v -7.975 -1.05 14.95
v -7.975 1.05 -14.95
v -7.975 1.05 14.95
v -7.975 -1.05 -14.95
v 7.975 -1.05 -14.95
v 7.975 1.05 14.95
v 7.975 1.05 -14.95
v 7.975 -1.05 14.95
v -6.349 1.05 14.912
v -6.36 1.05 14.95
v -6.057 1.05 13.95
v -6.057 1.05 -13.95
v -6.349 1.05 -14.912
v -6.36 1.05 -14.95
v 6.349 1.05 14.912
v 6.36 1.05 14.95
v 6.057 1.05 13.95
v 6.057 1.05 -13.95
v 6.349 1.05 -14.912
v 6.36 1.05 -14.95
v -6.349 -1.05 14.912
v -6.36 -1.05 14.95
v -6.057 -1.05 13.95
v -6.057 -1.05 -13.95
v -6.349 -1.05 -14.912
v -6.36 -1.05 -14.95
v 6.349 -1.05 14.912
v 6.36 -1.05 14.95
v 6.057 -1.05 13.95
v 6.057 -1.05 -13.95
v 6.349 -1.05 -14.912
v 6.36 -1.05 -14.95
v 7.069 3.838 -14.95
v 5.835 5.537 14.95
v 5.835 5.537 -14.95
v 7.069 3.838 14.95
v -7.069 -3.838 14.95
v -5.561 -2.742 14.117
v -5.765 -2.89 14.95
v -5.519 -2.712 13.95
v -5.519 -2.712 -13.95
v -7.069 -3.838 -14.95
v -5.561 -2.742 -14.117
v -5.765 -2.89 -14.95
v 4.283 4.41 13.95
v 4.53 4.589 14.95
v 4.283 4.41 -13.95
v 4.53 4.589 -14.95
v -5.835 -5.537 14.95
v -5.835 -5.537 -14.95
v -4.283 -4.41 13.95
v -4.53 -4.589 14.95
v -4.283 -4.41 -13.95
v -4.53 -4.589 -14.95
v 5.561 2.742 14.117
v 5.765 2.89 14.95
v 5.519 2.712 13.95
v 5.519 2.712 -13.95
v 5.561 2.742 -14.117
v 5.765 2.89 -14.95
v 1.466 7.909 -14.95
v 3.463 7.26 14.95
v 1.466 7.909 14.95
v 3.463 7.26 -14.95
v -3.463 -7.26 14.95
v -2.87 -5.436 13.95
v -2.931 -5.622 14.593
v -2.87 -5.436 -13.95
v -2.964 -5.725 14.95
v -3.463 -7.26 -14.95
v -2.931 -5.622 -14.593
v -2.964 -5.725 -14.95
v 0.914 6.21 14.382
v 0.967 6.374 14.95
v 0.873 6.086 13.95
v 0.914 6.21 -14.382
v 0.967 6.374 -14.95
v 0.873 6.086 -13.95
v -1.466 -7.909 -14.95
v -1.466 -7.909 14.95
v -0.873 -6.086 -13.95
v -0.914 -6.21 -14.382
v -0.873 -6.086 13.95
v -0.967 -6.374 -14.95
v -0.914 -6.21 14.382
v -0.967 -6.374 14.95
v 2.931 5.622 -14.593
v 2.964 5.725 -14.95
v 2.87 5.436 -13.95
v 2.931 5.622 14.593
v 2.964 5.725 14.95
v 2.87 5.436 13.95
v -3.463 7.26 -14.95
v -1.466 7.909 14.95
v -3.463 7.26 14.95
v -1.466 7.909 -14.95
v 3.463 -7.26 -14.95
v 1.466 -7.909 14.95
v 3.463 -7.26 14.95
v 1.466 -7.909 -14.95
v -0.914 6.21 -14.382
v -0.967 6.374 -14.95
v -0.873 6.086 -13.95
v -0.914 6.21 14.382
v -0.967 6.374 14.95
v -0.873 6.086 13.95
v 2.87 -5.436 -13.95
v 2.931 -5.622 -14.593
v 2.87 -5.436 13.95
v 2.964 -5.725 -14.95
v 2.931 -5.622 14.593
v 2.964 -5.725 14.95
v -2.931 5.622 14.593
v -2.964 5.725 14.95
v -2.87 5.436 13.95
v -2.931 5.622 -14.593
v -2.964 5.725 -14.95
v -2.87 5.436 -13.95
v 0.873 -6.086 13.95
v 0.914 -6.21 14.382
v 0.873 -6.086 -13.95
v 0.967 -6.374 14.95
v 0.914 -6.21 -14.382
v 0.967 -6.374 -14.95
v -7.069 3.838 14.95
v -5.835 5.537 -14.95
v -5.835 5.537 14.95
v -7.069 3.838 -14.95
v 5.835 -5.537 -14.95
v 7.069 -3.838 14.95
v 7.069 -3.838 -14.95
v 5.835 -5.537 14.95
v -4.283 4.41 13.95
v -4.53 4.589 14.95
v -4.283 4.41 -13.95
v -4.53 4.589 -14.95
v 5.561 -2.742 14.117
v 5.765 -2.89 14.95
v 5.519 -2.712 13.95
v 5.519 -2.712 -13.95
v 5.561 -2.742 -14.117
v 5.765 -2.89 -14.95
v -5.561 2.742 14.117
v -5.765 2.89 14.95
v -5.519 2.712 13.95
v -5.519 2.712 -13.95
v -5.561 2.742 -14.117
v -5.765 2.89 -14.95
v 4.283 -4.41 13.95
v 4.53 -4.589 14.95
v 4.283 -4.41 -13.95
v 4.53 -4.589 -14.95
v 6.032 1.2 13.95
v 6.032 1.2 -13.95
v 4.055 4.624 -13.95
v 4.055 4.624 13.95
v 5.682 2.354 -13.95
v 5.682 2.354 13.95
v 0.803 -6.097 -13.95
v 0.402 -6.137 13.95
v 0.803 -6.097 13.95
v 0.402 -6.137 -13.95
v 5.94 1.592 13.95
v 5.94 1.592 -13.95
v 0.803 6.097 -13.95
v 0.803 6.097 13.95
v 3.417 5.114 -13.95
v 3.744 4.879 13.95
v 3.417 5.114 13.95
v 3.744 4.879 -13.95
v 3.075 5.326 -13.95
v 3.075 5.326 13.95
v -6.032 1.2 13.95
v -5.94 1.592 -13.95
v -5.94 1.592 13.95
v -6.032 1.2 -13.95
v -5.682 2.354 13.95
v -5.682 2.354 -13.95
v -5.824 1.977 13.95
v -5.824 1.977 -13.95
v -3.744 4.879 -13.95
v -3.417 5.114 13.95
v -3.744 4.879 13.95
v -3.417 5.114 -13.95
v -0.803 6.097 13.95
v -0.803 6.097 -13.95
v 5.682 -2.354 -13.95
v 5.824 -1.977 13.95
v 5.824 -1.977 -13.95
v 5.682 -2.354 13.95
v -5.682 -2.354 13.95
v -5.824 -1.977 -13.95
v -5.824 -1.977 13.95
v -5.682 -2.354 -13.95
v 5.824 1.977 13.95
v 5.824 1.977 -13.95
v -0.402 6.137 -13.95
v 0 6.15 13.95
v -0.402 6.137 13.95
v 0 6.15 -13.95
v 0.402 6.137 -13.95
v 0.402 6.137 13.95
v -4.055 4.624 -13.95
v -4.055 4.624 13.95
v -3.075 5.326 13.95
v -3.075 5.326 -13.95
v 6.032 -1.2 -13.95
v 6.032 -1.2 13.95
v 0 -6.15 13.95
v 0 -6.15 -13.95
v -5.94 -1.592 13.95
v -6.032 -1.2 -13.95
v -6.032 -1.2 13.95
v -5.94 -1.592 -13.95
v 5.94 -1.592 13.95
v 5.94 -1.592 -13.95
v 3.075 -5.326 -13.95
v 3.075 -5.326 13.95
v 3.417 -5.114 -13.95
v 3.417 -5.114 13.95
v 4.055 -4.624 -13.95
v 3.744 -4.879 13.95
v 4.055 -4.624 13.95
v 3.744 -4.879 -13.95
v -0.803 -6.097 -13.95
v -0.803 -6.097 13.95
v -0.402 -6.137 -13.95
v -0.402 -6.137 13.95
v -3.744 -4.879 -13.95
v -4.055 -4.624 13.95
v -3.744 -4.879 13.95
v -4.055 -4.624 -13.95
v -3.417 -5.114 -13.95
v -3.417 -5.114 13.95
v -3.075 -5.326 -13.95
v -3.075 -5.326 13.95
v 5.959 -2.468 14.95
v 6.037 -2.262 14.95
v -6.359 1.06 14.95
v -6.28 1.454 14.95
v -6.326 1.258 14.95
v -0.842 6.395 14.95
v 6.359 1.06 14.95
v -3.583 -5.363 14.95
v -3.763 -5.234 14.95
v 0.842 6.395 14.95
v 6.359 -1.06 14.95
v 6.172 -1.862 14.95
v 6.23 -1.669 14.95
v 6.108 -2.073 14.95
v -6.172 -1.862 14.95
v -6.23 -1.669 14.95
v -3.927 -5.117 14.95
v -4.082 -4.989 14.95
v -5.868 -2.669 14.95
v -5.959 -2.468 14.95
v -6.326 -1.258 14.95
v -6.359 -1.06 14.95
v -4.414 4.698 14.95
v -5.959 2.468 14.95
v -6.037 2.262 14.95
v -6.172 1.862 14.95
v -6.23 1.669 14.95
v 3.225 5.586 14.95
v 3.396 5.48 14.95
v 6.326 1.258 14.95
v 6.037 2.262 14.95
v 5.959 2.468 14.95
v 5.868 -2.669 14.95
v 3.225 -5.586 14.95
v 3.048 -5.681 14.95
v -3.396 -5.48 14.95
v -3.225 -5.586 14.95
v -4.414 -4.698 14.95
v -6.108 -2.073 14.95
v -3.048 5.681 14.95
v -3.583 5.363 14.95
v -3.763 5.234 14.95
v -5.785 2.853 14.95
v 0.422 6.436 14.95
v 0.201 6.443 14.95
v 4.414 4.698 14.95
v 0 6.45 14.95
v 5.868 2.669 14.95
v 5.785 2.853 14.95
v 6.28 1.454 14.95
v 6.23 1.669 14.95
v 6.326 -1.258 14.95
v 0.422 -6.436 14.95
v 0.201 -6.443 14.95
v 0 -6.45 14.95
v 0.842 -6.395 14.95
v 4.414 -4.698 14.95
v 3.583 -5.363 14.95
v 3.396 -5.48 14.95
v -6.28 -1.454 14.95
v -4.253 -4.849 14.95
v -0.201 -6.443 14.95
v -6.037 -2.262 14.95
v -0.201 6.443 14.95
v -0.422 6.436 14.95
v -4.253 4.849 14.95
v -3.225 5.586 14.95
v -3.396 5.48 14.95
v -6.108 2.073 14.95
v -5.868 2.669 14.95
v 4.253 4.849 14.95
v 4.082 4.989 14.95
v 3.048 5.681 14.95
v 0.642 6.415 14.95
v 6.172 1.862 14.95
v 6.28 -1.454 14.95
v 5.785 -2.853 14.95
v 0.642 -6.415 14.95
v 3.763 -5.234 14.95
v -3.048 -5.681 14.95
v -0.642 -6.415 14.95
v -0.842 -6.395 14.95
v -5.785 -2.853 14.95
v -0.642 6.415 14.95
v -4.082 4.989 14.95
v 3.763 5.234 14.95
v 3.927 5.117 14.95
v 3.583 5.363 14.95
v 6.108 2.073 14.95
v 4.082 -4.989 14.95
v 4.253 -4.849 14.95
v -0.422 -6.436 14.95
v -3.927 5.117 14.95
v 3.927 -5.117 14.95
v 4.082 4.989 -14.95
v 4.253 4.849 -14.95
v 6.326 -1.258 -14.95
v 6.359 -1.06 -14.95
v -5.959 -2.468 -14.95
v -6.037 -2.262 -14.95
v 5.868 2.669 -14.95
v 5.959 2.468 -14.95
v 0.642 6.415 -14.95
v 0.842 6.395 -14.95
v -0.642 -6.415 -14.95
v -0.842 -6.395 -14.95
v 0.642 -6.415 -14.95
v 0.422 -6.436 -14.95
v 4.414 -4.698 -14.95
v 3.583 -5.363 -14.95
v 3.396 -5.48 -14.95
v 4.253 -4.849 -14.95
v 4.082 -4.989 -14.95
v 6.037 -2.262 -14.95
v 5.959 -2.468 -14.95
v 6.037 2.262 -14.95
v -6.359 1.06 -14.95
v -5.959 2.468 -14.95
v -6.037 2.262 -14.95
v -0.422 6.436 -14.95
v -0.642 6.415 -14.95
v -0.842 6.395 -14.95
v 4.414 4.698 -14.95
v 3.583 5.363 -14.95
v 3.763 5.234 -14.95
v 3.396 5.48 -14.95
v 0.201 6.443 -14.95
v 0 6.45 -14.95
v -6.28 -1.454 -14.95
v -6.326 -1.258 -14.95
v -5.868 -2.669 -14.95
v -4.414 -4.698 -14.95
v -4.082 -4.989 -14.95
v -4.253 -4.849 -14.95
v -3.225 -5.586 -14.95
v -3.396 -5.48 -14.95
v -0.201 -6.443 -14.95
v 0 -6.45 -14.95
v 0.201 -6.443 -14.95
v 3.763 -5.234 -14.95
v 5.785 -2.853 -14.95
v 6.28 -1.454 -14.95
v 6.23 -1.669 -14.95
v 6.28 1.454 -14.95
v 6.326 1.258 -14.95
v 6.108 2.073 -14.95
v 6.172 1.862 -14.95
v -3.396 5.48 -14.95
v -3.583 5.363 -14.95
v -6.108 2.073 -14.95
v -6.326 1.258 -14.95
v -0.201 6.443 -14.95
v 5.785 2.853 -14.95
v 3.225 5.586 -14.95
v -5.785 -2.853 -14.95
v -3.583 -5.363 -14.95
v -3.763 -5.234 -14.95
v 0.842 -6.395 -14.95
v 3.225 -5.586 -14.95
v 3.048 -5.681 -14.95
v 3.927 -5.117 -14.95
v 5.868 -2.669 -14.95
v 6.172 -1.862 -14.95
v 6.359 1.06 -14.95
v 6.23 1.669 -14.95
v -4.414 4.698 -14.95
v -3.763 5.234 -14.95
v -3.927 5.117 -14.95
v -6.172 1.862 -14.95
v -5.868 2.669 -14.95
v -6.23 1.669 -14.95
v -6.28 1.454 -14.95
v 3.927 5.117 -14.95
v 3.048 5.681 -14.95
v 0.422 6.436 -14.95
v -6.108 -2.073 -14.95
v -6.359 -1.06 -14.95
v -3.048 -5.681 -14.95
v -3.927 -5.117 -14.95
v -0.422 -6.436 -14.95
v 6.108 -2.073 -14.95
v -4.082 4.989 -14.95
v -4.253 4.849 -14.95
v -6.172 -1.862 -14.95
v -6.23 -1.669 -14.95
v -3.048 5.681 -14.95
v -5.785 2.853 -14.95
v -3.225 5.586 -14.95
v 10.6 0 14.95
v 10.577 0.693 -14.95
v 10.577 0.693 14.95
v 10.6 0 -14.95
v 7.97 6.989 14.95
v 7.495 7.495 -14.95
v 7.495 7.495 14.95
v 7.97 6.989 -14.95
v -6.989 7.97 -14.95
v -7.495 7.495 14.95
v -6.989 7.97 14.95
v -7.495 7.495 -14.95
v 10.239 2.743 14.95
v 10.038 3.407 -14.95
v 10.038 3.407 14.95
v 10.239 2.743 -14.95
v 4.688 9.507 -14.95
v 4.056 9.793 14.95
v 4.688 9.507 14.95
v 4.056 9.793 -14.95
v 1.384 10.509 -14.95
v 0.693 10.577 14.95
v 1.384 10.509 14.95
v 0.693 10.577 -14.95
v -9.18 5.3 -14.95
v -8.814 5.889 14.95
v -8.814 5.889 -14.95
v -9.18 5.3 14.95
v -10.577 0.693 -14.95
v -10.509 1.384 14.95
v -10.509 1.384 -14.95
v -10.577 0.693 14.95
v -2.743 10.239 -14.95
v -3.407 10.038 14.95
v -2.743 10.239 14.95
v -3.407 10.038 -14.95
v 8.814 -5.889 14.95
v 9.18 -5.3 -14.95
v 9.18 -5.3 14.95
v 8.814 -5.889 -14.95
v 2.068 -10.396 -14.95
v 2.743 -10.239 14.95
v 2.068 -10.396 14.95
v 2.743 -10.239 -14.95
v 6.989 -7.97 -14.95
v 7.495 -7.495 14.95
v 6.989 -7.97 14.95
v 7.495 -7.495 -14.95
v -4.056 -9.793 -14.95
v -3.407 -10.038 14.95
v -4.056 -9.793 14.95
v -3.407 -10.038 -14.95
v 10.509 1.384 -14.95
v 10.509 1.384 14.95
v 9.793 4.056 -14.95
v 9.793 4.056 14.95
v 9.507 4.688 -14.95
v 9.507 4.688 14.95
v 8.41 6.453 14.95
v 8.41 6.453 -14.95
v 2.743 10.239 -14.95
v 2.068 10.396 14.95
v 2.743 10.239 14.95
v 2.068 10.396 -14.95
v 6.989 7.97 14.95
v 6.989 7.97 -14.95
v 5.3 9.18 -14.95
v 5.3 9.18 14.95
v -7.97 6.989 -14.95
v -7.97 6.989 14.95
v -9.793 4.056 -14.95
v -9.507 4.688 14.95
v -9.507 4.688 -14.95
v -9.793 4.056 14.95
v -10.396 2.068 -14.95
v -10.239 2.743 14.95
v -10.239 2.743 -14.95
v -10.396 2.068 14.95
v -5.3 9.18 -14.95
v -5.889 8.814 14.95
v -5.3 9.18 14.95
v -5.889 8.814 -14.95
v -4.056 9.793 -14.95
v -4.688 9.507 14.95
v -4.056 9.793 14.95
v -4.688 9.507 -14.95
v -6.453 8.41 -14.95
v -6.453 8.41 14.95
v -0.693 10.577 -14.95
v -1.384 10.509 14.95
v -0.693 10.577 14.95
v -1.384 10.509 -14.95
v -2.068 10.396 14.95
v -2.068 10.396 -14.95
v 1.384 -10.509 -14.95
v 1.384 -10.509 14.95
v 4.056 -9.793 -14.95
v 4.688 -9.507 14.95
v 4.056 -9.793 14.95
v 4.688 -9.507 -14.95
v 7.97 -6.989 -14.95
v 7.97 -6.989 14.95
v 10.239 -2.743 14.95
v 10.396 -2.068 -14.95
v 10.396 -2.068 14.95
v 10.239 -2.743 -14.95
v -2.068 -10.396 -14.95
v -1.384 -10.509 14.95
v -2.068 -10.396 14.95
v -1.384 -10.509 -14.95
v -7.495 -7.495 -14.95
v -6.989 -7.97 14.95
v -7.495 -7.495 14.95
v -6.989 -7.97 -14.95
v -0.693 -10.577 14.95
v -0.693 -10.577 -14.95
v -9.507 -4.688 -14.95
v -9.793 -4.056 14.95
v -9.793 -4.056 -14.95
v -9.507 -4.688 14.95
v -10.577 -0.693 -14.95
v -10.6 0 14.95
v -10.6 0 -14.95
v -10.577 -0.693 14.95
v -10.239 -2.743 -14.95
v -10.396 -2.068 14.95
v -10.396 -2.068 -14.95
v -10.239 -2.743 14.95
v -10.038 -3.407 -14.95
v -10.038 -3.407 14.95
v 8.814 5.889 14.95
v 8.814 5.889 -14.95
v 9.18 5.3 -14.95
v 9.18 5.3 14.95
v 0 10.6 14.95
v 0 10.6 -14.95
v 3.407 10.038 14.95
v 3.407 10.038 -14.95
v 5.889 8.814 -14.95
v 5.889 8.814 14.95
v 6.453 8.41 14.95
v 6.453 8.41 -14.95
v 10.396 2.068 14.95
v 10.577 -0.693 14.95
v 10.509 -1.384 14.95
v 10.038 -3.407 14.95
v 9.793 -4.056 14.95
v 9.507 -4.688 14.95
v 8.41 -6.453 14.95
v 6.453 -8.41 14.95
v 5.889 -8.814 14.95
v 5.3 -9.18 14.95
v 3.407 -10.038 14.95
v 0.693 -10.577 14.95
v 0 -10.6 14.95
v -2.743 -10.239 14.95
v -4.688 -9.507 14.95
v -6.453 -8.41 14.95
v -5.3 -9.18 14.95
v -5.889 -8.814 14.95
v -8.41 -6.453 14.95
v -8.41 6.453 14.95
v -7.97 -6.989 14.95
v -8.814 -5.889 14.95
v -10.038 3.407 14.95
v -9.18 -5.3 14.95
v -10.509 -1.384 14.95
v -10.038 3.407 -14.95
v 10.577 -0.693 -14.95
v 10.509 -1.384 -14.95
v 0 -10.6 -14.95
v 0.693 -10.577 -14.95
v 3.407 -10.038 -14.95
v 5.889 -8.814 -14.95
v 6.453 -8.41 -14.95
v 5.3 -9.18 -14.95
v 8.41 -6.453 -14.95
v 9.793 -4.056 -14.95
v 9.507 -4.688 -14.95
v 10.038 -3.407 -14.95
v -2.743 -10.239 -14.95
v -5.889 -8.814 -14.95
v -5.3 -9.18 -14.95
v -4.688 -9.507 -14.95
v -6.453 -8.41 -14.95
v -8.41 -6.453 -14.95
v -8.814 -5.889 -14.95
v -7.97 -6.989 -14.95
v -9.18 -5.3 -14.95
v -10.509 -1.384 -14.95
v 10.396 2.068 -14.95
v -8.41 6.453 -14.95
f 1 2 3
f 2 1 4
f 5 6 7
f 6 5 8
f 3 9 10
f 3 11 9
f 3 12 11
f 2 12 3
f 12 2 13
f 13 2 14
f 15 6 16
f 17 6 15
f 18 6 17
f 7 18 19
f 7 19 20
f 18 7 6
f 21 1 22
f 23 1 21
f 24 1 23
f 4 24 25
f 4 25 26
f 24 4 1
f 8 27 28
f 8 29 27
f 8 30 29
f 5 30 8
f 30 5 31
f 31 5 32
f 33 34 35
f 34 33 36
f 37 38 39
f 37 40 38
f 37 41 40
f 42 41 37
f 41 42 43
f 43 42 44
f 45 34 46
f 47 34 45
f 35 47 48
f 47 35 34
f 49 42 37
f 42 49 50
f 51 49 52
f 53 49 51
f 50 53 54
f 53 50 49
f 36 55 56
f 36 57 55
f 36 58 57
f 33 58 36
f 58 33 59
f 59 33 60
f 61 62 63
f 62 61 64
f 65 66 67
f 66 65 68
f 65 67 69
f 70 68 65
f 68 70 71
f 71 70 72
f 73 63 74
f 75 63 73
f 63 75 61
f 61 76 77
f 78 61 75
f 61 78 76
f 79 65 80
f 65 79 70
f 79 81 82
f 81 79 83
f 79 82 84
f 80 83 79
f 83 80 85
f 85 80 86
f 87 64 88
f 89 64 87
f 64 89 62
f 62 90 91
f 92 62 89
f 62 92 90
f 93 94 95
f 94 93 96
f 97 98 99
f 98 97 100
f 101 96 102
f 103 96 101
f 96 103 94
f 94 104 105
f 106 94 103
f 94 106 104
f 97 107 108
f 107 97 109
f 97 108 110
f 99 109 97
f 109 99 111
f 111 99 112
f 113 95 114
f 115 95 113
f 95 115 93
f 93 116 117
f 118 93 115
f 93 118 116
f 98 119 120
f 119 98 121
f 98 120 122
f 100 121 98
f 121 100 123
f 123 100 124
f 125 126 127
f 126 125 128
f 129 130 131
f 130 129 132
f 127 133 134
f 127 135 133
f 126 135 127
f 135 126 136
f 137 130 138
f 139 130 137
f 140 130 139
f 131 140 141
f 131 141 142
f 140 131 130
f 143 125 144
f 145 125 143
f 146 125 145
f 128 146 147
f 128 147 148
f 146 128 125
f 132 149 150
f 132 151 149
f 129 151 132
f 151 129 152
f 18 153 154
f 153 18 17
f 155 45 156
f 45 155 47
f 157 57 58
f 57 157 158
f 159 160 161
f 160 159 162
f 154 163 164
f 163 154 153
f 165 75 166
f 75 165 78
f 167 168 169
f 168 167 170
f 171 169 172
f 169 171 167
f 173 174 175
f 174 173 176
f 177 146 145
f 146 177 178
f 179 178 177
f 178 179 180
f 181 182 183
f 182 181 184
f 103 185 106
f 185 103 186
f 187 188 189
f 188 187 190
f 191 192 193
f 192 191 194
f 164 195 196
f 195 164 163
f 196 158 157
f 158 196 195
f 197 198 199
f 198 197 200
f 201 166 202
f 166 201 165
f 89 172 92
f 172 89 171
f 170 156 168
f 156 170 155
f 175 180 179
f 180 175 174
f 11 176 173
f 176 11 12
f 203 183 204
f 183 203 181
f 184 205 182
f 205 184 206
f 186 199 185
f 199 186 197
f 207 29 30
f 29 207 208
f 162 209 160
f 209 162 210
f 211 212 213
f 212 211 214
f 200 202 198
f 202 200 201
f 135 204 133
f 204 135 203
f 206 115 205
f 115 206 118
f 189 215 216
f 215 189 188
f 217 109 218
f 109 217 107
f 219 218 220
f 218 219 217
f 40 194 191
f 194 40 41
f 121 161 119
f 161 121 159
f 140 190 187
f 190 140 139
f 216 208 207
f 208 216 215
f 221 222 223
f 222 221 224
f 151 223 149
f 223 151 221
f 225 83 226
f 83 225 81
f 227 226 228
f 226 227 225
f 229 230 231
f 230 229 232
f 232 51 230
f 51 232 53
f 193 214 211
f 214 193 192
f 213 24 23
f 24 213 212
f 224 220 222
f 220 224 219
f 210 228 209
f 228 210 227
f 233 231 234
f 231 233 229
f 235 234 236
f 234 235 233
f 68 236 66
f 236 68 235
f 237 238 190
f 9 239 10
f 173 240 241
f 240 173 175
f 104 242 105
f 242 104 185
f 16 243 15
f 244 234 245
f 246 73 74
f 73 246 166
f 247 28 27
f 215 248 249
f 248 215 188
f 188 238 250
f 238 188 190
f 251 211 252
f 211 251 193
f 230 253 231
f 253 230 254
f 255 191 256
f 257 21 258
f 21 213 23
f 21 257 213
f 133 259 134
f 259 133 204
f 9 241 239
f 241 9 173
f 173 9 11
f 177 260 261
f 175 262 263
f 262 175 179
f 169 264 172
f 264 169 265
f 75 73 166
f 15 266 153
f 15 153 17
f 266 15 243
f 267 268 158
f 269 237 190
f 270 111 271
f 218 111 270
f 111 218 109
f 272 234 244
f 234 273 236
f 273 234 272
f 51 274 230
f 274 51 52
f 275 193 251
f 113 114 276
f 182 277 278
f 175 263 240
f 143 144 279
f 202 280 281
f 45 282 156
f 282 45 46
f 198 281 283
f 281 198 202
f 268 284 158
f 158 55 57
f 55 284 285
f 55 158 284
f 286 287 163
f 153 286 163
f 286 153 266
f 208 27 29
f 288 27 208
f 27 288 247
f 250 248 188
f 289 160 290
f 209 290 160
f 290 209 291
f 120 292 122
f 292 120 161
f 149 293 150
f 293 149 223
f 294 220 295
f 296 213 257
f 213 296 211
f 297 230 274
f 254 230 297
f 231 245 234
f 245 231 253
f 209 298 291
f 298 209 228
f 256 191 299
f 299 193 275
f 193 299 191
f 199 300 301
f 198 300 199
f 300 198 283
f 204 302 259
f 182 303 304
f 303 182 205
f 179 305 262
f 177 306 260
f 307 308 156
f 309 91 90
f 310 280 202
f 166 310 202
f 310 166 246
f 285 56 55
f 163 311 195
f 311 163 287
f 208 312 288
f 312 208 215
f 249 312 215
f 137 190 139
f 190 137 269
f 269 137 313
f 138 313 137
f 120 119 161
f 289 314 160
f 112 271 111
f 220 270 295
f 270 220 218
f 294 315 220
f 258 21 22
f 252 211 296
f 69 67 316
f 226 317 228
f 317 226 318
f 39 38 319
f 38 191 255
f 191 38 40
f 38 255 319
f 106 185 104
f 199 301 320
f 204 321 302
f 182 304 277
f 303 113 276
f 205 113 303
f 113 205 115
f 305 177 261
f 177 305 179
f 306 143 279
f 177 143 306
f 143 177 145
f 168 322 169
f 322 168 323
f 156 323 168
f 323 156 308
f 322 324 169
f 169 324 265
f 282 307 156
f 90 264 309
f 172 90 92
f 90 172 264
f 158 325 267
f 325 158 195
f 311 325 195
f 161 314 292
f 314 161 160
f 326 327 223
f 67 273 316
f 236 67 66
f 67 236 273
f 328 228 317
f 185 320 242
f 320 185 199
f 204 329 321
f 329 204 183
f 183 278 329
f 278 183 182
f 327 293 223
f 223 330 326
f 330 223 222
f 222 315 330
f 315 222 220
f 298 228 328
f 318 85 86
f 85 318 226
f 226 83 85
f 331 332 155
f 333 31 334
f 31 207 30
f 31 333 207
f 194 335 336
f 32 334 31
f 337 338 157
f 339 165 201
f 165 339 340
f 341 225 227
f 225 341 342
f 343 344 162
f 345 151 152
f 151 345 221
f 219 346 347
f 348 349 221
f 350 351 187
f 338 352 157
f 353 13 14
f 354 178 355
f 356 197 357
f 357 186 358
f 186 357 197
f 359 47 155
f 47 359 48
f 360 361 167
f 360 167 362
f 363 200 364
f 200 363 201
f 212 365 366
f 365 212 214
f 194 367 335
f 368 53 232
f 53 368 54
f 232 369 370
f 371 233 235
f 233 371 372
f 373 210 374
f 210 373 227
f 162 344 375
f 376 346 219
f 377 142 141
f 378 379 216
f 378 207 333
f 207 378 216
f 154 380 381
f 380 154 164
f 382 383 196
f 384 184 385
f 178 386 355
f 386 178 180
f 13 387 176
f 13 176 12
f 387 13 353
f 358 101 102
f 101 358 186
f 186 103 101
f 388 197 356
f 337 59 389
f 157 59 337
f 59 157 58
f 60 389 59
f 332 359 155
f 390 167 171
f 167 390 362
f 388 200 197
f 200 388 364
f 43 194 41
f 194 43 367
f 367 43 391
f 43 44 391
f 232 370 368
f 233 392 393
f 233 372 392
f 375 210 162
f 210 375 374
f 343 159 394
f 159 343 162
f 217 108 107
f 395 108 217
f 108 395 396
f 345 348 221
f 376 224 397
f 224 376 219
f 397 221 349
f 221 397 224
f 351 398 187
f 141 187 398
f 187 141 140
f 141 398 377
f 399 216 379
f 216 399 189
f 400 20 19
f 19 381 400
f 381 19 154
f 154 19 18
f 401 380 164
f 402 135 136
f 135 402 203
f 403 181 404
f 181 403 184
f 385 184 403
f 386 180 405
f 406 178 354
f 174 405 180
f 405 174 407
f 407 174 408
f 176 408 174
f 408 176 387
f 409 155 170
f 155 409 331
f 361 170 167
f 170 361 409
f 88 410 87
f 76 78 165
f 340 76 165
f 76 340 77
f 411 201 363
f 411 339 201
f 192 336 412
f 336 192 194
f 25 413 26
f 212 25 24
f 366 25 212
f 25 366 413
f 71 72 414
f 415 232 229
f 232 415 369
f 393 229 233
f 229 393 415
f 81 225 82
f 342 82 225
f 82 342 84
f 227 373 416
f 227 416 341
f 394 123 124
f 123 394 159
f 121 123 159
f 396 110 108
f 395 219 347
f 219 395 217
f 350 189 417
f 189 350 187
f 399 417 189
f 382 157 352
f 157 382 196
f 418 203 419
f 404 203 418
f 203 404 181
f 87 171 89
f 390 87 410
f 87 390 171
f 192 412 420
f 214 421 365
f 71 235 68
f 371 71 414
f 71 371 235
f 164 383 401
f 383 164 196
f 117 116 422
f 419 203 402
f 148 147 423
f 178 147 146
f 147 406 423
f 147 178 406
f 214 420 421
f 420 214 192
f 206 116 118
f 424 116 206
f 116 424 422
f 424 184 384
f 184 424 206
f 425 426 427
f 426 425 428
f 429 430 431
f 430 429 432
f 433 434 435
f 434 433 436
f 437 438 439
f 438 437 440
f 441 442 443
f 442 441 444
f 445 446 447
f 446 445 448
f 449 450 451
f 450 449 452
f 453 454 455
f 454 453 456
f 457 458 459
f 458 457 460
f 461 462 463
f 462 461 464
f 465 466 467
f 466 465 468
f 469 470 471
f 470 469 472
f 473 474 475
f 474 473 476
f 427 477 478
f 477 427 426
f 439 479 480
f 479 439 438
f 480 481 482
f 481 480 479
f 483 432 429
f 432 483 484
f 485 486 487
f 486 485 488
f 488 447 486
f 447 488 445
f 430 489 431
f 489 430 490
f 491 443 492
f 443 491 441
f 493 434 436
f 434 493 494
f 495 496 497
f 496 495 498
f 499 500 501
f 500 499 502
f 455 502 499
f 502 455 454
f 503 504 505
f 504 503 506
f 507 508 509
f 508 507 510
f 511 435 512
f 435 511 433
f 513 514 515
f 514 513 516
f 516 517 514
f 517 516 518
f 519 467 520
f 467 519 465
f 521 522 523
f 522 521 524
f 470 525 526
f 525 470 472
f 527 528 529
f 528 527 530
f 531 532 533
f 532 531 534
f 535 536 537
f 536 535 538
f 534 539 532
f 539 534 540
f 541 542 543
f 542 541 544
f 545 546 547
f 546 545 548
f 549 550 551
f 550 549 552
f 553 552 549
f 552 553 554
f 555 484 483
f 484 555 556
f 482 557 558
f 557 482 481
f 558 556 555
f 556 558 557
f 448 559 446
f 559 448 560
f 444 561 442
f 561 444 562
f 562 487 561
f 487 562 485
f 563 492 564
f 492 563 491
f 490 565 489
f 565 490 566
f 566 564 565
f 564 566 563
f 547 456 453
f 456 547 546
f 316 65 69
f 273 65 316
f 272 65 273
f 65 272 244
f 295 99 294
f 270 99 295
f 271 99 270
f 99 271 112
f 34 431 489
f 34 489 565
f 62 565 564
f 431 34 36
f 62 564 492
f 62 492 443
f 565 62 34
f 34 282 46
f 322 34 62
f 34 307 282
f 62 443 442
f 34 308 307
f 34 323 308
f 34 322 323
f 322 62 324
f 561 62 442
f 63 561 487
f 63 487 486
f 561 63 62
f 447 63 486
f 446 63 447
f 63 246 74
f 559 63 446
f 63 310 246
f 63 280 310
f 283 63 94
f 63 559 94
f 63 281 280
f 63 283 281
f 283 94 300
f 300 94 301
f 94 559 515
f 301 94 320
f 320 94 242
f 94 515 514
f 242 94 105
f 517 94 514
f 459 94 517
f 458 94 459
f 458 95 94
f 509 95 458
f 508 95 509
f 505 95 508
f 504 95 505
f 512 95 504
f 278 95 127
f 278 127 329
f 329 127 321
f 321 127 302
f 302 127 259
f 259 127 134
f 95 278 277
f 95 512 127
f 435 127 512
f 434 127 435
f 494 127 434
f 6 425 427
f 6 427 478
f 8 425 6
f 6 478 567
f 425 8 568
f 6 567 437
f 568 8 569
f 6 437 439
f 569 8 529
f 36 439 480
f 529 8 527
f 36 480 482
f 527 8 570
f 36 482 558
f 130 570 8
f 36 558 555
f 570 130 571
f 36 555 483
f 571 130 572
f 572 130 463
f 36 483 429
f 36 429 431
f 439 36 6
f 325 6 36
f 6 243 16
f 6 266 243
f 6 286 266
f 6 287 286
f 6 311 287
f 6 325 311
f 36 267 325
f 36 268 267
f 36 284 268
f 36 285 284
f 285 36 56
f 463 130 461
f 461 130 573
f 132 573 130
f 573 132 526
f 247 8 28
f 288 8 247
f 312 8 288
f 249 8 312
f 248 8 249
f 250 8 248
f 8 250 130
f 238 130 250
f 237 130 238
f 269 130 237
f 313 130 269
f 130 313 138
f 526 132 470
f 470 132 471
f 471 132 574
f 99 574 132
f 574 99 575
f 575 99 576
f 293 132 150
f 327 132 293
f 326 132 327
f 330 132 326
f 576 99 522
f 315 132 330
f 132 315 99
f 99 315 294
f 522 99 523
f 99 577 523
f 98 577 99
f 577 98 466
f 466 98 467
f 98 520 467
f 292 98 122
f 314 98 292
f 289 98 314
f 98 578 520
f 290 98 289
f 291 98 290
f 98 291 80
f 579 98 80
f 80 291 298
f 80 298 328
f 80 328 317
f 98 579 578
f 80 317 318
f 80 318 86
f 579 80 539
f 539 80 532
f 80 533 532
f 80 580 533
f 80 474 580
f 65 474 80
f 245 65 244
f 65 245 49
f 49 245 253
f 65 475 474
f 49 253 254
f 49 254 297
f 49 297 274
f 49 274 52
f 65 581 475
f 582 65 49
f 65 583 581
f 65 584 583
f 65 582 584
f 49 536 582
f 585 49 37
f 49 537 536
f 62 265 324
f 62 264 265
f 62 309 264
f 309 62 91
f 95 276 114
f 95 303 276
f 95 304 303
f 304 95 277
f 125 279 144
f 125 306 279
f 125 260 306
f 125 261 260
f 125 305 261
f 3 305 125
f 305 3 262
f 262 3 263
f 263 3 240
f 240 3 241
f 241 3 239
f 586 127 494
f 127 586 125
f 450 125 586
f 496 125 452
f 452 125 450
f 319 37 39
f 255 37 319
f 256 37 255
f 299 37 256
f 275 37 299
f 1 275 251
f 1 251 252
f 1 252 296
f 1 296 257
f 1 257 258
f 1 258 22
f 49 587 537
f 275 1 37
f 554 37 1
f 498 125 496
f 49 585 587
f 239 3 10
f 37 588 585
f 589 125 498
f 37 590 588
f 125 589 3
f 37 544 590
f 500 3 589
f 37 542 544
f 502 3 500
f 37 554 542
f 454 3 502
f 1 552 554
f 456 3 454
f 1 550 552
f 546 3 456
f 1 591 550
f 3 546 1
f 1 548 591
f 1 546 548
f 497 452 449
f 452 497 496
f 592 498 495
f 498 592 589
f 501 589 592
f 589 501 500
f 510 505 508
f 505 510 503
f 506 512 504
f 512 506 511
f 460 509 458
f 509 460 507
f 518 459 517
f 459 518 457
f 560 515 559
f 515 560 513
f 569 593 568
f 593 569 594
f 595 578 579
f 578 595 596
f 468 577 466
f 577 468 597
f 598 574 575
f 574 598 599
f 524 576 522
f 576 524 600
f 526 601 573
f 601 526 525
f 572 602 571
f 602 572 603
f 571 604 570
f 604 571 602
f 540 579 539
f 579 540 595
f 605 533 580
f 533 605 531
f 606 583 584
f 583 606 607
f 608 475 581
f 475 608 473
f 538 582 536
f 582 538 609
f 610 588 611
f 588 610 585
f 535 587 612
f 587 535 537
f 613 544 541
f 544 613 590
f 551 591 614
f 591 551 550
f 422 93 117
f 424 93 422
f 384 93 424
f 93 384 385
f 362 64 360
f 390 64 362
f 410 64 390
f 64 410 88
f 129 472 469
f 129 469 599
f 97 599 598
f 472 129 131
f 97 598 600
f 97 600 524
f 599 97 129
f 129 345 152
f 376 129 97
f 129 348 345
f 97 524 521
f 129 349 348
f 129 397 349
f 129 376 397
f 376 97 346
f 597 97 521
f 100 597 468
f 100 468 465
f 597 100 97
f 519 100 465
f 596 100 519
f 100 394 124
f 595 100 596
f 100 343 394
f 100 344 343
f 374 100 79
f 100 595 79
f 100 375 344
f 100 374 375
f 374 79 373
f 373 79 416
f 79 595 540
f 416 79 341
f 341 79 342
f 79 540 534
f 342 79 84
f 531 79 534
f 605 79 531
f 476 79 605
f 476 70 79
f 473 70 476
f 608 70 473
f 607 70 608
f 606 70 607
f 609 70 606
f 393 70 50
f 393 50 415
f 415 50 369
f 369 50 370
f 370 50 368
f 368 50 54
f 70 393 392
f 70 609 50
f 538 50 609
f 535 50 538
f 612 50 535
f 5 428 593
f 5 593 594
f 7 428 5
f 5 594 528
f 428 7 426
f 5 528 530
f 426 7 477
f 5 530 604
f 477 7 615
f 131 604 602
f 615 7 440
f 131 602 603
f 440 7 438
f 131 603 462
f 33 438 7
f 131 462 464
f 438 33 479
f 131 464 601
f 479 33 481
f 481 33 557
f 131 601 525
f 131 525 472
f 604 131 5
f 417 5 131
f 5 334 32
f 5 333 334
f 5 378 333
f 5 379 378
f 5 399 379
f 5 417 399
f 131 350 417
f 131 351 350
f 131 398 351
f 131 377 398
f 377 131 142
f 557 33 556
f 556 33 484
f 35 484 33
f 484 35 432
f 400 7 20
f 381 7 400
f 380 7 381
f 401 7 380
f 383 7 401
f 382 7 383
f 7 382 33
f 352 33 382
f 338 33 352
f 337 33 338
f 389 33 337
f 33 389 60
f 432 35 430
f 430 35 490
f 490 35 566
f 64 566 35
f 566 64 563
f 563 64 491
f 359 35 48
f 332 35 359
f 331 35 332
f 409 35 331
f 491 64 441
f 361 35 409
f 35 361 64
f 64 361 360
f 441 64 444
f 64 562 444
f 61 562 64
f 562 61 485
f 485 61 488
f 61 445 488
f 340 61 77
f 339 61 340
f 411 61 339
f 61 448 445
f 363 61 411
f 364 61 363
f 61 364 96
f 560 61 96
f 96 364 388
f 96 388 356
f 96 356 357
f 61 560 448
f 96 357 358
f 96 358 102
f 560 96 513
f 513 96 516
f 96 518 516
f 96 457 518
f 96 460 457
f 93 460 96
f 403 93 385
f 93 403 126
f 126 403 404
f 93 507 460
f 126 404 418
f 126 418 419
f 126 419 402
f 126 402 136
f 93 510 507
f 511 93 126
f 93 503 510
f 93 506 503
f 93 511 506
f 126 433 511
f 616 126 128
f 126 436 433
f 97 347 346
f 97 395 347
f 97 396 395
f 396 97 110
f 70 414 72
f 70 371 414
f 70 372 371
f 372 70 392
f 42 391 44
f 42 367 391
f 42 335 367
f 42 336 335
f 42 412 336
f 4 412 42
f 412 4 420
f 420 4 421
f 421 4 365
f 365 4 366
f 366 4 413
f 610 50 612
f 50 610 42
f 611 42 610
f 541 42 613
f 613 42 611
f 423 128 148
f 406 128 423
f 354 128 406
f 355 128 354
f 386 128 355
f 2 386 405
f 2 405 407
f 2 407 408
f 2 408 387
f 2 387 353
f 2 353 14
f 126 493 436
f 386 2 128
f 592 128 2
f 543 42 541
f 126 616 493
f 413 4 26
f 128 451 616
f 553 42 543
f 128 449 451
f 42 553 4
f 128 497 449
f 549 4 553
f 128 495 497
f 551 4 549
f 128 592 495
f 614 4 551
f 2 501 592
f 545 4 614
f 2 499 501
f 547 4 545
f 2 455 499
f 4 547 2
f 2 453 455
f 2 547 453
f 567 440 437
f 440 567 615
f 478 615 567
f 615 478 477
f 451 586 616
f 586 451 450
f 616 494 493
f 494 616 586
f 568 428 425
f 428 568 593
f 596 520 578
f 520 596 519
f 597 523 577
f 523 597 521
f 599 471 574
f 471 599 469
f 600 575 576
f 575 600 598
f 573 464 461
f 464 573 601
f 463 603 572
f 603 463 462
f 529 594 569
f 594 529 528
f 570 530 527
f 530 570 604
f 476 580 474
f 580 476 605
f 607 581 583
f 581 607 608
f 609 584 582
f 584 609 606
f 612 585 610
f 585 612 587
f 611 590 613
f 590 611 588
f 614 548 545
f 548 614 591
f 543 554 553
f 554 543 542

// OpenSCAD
// possible PLA or even better PETG replacement for LM12UU

DiaLM12= 12.3; // ok for me, verify
DiaOuterLM12=21.2; // my result =21
HeightLM12= 29.9;  // my result = 30

difference()
    {
                 
        union()
    {    
       cylinder(h=HeightLM12,d=DiaOuterLM12,center=true,$fn=96)  ;    
    }          
      
   union() 
    {
        
  cylinder(h=HeightLM12+1,d=DiaLM12,center=true,$fn=96)  ;    
  
        for(z=[0:36:180])
        {
        rotate([0,0,z])
        
cube([(HeightLM12+2)/2,2.1,HeightLM12+1],center=true);        //
            
            
        }
        
       // some discrete funnel d 0.6 mm and 1 mm high on begin and end:
        
        translate([0,0,HeightLM12/2])
      cylinder(d1=DiaLM12,d2=DiaLM12+1.2,h=2.0,center=true,$fn=96)  ;    
    
        translate([0,0,-HeightLM12/2])
      cylinder(d2=DiaLM12,d1=DiaLM12+1.2,h=2.0,center=true,$fn=96)  ;    
   
    }  
    
    // Comment out the two lines below 
    // to print half 
    
  //  translate([0,15,0])   
  //   cube([30,30,40],center=true);
    
    
              
}       
